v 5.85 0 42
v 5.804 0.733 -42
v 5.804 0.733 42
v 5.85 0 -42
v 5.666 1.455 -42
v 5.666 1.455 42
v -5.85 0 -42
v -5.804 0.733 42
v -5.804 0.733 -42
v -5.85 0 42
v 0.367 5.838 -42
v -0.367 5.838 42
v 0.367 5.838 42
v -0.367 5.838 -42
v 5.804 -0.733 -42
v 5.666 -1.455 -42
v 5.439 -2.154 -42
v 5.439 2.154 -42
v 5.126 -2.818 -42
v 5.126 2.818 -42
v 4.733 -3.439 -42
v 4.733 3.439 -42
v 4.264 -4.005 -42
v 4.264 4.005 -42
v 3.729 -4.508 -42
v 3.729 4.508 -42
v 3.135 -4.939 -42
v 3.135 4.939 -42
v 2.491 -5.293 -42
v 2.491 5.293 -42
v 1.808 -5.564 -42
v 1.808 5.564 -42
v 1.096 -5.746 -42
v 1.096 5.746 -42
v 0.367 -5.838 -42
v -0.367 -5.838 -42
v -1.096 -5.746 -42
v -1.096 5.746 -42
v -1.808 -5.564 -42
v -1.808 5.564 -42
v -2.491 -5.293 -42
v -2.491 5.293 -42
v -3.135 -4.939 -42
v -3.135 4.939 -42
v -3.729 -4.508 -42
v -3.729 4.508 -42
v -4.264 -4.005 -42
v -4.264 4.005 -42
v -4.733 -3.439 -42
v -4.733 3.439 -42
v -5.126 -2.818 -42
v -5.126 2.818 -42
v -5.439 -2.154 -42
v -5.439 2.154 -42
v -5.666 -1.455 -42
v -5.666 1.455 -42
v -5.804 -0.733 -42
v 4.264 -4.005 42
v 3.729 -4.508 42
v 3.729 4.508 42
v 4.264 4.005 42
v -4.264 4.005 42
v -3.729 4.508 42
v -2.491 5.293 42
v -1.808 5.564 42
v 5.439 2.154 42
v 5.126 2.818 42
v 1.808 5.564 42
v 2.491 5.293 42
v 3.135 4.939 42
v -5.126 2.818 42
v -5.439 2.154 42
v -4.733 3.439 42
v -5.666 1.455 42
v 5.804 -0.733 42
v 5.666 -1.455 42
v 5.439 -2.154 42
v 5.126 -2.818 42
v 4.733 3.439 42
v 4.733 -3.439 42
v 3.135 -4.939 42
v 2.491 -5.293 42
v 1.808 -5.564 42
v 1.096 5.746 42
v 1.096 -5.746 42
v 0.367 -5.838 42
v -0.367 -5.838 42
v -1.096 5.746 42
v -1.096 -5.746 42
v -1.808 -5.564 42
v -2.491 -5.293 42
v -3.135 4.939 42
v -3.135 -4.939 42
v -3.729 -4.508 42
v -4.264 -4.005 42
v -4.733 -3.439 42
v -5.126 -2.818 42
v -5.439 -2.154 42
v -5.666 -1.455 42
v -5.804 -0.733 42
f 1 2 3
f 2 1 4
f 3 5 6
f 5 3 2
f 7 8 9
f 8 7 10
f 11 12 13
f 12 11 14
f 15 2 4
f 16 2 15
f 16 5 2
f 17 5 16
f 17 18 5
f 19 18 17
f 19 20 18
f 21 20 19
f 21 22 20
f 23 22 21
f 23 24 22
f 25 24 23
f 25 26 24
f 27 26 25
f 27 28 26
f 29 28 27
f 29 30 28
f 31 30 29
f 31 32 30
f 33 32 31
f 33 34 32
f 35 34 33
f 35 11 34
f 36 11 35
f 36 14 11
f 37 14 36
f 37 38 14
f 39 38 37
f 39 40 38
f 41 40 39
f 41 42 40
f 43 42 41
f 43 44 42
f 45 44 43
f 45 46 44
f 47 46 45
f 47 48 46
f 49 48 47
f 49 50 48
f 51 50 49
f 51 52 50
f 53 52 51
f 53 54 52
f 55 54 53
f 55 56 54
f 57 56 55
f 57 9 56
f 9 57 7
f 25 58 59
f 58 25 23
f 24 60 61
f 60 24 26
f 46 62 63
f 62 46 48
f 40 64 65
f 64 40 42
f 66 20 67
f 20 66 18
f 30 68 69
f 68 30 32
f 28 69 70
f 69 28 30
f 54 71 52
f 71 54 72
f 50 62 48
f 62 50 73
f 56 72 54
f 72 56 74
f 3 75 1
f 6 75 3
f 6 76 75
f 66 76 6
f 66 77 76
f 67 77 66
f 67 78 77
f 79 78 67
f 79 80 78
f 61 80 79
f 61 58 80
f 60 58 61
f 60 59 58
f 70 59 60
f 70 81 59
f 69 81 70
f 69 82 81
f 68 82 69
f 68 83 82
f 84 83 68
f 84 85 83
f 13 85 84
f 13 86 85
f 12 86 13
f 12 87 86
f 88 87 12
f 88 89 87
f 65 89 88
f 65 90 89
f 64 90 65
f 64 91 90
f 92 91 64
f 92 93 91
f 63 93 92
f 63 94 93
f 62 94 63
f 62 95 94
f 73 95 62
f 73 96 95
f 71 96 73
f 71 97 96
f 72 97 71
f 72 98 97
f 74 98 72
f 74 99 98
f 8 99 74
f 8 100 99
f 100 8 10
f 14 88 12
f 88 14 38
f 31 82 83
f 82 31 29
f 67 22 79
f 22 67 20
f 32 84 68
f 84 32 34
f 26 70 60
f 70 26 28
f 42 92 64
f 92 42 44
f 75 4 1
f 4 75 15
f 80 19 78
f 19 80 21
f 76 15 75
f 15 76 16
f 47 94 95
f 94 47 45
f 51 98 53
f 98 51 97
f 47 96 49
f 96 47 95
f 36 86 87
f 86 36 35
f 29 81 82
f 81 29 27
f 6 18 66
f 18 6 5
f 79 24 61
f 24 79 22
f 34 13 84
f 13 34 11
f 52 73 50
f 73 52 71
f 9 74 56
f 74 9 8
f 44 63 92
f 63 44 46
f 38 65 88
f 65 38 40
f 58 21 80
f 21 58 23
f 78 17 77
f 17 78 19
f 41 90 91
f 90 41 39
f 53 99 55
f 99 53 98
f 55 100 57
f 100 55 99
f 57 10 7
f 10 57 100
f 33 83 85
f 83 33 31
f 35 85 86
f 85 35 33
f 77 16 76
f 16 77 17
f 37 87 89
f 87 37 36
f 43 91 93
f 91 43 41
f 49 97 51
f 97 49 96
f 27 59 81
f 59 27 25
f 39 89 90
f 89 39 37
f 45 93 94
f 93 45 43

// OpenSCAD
$fn = 50;


difference() {
	union() {
		translate(v = [0, 0, -42.0000000000]) {
			cylinder(h = 84, r = 5.8500000000);
		}
	}
	union() {
		translate(v = [0, 0, -100.0000000000]) {
			cylinder(h = 200, r = 0);
		}
	}
}
